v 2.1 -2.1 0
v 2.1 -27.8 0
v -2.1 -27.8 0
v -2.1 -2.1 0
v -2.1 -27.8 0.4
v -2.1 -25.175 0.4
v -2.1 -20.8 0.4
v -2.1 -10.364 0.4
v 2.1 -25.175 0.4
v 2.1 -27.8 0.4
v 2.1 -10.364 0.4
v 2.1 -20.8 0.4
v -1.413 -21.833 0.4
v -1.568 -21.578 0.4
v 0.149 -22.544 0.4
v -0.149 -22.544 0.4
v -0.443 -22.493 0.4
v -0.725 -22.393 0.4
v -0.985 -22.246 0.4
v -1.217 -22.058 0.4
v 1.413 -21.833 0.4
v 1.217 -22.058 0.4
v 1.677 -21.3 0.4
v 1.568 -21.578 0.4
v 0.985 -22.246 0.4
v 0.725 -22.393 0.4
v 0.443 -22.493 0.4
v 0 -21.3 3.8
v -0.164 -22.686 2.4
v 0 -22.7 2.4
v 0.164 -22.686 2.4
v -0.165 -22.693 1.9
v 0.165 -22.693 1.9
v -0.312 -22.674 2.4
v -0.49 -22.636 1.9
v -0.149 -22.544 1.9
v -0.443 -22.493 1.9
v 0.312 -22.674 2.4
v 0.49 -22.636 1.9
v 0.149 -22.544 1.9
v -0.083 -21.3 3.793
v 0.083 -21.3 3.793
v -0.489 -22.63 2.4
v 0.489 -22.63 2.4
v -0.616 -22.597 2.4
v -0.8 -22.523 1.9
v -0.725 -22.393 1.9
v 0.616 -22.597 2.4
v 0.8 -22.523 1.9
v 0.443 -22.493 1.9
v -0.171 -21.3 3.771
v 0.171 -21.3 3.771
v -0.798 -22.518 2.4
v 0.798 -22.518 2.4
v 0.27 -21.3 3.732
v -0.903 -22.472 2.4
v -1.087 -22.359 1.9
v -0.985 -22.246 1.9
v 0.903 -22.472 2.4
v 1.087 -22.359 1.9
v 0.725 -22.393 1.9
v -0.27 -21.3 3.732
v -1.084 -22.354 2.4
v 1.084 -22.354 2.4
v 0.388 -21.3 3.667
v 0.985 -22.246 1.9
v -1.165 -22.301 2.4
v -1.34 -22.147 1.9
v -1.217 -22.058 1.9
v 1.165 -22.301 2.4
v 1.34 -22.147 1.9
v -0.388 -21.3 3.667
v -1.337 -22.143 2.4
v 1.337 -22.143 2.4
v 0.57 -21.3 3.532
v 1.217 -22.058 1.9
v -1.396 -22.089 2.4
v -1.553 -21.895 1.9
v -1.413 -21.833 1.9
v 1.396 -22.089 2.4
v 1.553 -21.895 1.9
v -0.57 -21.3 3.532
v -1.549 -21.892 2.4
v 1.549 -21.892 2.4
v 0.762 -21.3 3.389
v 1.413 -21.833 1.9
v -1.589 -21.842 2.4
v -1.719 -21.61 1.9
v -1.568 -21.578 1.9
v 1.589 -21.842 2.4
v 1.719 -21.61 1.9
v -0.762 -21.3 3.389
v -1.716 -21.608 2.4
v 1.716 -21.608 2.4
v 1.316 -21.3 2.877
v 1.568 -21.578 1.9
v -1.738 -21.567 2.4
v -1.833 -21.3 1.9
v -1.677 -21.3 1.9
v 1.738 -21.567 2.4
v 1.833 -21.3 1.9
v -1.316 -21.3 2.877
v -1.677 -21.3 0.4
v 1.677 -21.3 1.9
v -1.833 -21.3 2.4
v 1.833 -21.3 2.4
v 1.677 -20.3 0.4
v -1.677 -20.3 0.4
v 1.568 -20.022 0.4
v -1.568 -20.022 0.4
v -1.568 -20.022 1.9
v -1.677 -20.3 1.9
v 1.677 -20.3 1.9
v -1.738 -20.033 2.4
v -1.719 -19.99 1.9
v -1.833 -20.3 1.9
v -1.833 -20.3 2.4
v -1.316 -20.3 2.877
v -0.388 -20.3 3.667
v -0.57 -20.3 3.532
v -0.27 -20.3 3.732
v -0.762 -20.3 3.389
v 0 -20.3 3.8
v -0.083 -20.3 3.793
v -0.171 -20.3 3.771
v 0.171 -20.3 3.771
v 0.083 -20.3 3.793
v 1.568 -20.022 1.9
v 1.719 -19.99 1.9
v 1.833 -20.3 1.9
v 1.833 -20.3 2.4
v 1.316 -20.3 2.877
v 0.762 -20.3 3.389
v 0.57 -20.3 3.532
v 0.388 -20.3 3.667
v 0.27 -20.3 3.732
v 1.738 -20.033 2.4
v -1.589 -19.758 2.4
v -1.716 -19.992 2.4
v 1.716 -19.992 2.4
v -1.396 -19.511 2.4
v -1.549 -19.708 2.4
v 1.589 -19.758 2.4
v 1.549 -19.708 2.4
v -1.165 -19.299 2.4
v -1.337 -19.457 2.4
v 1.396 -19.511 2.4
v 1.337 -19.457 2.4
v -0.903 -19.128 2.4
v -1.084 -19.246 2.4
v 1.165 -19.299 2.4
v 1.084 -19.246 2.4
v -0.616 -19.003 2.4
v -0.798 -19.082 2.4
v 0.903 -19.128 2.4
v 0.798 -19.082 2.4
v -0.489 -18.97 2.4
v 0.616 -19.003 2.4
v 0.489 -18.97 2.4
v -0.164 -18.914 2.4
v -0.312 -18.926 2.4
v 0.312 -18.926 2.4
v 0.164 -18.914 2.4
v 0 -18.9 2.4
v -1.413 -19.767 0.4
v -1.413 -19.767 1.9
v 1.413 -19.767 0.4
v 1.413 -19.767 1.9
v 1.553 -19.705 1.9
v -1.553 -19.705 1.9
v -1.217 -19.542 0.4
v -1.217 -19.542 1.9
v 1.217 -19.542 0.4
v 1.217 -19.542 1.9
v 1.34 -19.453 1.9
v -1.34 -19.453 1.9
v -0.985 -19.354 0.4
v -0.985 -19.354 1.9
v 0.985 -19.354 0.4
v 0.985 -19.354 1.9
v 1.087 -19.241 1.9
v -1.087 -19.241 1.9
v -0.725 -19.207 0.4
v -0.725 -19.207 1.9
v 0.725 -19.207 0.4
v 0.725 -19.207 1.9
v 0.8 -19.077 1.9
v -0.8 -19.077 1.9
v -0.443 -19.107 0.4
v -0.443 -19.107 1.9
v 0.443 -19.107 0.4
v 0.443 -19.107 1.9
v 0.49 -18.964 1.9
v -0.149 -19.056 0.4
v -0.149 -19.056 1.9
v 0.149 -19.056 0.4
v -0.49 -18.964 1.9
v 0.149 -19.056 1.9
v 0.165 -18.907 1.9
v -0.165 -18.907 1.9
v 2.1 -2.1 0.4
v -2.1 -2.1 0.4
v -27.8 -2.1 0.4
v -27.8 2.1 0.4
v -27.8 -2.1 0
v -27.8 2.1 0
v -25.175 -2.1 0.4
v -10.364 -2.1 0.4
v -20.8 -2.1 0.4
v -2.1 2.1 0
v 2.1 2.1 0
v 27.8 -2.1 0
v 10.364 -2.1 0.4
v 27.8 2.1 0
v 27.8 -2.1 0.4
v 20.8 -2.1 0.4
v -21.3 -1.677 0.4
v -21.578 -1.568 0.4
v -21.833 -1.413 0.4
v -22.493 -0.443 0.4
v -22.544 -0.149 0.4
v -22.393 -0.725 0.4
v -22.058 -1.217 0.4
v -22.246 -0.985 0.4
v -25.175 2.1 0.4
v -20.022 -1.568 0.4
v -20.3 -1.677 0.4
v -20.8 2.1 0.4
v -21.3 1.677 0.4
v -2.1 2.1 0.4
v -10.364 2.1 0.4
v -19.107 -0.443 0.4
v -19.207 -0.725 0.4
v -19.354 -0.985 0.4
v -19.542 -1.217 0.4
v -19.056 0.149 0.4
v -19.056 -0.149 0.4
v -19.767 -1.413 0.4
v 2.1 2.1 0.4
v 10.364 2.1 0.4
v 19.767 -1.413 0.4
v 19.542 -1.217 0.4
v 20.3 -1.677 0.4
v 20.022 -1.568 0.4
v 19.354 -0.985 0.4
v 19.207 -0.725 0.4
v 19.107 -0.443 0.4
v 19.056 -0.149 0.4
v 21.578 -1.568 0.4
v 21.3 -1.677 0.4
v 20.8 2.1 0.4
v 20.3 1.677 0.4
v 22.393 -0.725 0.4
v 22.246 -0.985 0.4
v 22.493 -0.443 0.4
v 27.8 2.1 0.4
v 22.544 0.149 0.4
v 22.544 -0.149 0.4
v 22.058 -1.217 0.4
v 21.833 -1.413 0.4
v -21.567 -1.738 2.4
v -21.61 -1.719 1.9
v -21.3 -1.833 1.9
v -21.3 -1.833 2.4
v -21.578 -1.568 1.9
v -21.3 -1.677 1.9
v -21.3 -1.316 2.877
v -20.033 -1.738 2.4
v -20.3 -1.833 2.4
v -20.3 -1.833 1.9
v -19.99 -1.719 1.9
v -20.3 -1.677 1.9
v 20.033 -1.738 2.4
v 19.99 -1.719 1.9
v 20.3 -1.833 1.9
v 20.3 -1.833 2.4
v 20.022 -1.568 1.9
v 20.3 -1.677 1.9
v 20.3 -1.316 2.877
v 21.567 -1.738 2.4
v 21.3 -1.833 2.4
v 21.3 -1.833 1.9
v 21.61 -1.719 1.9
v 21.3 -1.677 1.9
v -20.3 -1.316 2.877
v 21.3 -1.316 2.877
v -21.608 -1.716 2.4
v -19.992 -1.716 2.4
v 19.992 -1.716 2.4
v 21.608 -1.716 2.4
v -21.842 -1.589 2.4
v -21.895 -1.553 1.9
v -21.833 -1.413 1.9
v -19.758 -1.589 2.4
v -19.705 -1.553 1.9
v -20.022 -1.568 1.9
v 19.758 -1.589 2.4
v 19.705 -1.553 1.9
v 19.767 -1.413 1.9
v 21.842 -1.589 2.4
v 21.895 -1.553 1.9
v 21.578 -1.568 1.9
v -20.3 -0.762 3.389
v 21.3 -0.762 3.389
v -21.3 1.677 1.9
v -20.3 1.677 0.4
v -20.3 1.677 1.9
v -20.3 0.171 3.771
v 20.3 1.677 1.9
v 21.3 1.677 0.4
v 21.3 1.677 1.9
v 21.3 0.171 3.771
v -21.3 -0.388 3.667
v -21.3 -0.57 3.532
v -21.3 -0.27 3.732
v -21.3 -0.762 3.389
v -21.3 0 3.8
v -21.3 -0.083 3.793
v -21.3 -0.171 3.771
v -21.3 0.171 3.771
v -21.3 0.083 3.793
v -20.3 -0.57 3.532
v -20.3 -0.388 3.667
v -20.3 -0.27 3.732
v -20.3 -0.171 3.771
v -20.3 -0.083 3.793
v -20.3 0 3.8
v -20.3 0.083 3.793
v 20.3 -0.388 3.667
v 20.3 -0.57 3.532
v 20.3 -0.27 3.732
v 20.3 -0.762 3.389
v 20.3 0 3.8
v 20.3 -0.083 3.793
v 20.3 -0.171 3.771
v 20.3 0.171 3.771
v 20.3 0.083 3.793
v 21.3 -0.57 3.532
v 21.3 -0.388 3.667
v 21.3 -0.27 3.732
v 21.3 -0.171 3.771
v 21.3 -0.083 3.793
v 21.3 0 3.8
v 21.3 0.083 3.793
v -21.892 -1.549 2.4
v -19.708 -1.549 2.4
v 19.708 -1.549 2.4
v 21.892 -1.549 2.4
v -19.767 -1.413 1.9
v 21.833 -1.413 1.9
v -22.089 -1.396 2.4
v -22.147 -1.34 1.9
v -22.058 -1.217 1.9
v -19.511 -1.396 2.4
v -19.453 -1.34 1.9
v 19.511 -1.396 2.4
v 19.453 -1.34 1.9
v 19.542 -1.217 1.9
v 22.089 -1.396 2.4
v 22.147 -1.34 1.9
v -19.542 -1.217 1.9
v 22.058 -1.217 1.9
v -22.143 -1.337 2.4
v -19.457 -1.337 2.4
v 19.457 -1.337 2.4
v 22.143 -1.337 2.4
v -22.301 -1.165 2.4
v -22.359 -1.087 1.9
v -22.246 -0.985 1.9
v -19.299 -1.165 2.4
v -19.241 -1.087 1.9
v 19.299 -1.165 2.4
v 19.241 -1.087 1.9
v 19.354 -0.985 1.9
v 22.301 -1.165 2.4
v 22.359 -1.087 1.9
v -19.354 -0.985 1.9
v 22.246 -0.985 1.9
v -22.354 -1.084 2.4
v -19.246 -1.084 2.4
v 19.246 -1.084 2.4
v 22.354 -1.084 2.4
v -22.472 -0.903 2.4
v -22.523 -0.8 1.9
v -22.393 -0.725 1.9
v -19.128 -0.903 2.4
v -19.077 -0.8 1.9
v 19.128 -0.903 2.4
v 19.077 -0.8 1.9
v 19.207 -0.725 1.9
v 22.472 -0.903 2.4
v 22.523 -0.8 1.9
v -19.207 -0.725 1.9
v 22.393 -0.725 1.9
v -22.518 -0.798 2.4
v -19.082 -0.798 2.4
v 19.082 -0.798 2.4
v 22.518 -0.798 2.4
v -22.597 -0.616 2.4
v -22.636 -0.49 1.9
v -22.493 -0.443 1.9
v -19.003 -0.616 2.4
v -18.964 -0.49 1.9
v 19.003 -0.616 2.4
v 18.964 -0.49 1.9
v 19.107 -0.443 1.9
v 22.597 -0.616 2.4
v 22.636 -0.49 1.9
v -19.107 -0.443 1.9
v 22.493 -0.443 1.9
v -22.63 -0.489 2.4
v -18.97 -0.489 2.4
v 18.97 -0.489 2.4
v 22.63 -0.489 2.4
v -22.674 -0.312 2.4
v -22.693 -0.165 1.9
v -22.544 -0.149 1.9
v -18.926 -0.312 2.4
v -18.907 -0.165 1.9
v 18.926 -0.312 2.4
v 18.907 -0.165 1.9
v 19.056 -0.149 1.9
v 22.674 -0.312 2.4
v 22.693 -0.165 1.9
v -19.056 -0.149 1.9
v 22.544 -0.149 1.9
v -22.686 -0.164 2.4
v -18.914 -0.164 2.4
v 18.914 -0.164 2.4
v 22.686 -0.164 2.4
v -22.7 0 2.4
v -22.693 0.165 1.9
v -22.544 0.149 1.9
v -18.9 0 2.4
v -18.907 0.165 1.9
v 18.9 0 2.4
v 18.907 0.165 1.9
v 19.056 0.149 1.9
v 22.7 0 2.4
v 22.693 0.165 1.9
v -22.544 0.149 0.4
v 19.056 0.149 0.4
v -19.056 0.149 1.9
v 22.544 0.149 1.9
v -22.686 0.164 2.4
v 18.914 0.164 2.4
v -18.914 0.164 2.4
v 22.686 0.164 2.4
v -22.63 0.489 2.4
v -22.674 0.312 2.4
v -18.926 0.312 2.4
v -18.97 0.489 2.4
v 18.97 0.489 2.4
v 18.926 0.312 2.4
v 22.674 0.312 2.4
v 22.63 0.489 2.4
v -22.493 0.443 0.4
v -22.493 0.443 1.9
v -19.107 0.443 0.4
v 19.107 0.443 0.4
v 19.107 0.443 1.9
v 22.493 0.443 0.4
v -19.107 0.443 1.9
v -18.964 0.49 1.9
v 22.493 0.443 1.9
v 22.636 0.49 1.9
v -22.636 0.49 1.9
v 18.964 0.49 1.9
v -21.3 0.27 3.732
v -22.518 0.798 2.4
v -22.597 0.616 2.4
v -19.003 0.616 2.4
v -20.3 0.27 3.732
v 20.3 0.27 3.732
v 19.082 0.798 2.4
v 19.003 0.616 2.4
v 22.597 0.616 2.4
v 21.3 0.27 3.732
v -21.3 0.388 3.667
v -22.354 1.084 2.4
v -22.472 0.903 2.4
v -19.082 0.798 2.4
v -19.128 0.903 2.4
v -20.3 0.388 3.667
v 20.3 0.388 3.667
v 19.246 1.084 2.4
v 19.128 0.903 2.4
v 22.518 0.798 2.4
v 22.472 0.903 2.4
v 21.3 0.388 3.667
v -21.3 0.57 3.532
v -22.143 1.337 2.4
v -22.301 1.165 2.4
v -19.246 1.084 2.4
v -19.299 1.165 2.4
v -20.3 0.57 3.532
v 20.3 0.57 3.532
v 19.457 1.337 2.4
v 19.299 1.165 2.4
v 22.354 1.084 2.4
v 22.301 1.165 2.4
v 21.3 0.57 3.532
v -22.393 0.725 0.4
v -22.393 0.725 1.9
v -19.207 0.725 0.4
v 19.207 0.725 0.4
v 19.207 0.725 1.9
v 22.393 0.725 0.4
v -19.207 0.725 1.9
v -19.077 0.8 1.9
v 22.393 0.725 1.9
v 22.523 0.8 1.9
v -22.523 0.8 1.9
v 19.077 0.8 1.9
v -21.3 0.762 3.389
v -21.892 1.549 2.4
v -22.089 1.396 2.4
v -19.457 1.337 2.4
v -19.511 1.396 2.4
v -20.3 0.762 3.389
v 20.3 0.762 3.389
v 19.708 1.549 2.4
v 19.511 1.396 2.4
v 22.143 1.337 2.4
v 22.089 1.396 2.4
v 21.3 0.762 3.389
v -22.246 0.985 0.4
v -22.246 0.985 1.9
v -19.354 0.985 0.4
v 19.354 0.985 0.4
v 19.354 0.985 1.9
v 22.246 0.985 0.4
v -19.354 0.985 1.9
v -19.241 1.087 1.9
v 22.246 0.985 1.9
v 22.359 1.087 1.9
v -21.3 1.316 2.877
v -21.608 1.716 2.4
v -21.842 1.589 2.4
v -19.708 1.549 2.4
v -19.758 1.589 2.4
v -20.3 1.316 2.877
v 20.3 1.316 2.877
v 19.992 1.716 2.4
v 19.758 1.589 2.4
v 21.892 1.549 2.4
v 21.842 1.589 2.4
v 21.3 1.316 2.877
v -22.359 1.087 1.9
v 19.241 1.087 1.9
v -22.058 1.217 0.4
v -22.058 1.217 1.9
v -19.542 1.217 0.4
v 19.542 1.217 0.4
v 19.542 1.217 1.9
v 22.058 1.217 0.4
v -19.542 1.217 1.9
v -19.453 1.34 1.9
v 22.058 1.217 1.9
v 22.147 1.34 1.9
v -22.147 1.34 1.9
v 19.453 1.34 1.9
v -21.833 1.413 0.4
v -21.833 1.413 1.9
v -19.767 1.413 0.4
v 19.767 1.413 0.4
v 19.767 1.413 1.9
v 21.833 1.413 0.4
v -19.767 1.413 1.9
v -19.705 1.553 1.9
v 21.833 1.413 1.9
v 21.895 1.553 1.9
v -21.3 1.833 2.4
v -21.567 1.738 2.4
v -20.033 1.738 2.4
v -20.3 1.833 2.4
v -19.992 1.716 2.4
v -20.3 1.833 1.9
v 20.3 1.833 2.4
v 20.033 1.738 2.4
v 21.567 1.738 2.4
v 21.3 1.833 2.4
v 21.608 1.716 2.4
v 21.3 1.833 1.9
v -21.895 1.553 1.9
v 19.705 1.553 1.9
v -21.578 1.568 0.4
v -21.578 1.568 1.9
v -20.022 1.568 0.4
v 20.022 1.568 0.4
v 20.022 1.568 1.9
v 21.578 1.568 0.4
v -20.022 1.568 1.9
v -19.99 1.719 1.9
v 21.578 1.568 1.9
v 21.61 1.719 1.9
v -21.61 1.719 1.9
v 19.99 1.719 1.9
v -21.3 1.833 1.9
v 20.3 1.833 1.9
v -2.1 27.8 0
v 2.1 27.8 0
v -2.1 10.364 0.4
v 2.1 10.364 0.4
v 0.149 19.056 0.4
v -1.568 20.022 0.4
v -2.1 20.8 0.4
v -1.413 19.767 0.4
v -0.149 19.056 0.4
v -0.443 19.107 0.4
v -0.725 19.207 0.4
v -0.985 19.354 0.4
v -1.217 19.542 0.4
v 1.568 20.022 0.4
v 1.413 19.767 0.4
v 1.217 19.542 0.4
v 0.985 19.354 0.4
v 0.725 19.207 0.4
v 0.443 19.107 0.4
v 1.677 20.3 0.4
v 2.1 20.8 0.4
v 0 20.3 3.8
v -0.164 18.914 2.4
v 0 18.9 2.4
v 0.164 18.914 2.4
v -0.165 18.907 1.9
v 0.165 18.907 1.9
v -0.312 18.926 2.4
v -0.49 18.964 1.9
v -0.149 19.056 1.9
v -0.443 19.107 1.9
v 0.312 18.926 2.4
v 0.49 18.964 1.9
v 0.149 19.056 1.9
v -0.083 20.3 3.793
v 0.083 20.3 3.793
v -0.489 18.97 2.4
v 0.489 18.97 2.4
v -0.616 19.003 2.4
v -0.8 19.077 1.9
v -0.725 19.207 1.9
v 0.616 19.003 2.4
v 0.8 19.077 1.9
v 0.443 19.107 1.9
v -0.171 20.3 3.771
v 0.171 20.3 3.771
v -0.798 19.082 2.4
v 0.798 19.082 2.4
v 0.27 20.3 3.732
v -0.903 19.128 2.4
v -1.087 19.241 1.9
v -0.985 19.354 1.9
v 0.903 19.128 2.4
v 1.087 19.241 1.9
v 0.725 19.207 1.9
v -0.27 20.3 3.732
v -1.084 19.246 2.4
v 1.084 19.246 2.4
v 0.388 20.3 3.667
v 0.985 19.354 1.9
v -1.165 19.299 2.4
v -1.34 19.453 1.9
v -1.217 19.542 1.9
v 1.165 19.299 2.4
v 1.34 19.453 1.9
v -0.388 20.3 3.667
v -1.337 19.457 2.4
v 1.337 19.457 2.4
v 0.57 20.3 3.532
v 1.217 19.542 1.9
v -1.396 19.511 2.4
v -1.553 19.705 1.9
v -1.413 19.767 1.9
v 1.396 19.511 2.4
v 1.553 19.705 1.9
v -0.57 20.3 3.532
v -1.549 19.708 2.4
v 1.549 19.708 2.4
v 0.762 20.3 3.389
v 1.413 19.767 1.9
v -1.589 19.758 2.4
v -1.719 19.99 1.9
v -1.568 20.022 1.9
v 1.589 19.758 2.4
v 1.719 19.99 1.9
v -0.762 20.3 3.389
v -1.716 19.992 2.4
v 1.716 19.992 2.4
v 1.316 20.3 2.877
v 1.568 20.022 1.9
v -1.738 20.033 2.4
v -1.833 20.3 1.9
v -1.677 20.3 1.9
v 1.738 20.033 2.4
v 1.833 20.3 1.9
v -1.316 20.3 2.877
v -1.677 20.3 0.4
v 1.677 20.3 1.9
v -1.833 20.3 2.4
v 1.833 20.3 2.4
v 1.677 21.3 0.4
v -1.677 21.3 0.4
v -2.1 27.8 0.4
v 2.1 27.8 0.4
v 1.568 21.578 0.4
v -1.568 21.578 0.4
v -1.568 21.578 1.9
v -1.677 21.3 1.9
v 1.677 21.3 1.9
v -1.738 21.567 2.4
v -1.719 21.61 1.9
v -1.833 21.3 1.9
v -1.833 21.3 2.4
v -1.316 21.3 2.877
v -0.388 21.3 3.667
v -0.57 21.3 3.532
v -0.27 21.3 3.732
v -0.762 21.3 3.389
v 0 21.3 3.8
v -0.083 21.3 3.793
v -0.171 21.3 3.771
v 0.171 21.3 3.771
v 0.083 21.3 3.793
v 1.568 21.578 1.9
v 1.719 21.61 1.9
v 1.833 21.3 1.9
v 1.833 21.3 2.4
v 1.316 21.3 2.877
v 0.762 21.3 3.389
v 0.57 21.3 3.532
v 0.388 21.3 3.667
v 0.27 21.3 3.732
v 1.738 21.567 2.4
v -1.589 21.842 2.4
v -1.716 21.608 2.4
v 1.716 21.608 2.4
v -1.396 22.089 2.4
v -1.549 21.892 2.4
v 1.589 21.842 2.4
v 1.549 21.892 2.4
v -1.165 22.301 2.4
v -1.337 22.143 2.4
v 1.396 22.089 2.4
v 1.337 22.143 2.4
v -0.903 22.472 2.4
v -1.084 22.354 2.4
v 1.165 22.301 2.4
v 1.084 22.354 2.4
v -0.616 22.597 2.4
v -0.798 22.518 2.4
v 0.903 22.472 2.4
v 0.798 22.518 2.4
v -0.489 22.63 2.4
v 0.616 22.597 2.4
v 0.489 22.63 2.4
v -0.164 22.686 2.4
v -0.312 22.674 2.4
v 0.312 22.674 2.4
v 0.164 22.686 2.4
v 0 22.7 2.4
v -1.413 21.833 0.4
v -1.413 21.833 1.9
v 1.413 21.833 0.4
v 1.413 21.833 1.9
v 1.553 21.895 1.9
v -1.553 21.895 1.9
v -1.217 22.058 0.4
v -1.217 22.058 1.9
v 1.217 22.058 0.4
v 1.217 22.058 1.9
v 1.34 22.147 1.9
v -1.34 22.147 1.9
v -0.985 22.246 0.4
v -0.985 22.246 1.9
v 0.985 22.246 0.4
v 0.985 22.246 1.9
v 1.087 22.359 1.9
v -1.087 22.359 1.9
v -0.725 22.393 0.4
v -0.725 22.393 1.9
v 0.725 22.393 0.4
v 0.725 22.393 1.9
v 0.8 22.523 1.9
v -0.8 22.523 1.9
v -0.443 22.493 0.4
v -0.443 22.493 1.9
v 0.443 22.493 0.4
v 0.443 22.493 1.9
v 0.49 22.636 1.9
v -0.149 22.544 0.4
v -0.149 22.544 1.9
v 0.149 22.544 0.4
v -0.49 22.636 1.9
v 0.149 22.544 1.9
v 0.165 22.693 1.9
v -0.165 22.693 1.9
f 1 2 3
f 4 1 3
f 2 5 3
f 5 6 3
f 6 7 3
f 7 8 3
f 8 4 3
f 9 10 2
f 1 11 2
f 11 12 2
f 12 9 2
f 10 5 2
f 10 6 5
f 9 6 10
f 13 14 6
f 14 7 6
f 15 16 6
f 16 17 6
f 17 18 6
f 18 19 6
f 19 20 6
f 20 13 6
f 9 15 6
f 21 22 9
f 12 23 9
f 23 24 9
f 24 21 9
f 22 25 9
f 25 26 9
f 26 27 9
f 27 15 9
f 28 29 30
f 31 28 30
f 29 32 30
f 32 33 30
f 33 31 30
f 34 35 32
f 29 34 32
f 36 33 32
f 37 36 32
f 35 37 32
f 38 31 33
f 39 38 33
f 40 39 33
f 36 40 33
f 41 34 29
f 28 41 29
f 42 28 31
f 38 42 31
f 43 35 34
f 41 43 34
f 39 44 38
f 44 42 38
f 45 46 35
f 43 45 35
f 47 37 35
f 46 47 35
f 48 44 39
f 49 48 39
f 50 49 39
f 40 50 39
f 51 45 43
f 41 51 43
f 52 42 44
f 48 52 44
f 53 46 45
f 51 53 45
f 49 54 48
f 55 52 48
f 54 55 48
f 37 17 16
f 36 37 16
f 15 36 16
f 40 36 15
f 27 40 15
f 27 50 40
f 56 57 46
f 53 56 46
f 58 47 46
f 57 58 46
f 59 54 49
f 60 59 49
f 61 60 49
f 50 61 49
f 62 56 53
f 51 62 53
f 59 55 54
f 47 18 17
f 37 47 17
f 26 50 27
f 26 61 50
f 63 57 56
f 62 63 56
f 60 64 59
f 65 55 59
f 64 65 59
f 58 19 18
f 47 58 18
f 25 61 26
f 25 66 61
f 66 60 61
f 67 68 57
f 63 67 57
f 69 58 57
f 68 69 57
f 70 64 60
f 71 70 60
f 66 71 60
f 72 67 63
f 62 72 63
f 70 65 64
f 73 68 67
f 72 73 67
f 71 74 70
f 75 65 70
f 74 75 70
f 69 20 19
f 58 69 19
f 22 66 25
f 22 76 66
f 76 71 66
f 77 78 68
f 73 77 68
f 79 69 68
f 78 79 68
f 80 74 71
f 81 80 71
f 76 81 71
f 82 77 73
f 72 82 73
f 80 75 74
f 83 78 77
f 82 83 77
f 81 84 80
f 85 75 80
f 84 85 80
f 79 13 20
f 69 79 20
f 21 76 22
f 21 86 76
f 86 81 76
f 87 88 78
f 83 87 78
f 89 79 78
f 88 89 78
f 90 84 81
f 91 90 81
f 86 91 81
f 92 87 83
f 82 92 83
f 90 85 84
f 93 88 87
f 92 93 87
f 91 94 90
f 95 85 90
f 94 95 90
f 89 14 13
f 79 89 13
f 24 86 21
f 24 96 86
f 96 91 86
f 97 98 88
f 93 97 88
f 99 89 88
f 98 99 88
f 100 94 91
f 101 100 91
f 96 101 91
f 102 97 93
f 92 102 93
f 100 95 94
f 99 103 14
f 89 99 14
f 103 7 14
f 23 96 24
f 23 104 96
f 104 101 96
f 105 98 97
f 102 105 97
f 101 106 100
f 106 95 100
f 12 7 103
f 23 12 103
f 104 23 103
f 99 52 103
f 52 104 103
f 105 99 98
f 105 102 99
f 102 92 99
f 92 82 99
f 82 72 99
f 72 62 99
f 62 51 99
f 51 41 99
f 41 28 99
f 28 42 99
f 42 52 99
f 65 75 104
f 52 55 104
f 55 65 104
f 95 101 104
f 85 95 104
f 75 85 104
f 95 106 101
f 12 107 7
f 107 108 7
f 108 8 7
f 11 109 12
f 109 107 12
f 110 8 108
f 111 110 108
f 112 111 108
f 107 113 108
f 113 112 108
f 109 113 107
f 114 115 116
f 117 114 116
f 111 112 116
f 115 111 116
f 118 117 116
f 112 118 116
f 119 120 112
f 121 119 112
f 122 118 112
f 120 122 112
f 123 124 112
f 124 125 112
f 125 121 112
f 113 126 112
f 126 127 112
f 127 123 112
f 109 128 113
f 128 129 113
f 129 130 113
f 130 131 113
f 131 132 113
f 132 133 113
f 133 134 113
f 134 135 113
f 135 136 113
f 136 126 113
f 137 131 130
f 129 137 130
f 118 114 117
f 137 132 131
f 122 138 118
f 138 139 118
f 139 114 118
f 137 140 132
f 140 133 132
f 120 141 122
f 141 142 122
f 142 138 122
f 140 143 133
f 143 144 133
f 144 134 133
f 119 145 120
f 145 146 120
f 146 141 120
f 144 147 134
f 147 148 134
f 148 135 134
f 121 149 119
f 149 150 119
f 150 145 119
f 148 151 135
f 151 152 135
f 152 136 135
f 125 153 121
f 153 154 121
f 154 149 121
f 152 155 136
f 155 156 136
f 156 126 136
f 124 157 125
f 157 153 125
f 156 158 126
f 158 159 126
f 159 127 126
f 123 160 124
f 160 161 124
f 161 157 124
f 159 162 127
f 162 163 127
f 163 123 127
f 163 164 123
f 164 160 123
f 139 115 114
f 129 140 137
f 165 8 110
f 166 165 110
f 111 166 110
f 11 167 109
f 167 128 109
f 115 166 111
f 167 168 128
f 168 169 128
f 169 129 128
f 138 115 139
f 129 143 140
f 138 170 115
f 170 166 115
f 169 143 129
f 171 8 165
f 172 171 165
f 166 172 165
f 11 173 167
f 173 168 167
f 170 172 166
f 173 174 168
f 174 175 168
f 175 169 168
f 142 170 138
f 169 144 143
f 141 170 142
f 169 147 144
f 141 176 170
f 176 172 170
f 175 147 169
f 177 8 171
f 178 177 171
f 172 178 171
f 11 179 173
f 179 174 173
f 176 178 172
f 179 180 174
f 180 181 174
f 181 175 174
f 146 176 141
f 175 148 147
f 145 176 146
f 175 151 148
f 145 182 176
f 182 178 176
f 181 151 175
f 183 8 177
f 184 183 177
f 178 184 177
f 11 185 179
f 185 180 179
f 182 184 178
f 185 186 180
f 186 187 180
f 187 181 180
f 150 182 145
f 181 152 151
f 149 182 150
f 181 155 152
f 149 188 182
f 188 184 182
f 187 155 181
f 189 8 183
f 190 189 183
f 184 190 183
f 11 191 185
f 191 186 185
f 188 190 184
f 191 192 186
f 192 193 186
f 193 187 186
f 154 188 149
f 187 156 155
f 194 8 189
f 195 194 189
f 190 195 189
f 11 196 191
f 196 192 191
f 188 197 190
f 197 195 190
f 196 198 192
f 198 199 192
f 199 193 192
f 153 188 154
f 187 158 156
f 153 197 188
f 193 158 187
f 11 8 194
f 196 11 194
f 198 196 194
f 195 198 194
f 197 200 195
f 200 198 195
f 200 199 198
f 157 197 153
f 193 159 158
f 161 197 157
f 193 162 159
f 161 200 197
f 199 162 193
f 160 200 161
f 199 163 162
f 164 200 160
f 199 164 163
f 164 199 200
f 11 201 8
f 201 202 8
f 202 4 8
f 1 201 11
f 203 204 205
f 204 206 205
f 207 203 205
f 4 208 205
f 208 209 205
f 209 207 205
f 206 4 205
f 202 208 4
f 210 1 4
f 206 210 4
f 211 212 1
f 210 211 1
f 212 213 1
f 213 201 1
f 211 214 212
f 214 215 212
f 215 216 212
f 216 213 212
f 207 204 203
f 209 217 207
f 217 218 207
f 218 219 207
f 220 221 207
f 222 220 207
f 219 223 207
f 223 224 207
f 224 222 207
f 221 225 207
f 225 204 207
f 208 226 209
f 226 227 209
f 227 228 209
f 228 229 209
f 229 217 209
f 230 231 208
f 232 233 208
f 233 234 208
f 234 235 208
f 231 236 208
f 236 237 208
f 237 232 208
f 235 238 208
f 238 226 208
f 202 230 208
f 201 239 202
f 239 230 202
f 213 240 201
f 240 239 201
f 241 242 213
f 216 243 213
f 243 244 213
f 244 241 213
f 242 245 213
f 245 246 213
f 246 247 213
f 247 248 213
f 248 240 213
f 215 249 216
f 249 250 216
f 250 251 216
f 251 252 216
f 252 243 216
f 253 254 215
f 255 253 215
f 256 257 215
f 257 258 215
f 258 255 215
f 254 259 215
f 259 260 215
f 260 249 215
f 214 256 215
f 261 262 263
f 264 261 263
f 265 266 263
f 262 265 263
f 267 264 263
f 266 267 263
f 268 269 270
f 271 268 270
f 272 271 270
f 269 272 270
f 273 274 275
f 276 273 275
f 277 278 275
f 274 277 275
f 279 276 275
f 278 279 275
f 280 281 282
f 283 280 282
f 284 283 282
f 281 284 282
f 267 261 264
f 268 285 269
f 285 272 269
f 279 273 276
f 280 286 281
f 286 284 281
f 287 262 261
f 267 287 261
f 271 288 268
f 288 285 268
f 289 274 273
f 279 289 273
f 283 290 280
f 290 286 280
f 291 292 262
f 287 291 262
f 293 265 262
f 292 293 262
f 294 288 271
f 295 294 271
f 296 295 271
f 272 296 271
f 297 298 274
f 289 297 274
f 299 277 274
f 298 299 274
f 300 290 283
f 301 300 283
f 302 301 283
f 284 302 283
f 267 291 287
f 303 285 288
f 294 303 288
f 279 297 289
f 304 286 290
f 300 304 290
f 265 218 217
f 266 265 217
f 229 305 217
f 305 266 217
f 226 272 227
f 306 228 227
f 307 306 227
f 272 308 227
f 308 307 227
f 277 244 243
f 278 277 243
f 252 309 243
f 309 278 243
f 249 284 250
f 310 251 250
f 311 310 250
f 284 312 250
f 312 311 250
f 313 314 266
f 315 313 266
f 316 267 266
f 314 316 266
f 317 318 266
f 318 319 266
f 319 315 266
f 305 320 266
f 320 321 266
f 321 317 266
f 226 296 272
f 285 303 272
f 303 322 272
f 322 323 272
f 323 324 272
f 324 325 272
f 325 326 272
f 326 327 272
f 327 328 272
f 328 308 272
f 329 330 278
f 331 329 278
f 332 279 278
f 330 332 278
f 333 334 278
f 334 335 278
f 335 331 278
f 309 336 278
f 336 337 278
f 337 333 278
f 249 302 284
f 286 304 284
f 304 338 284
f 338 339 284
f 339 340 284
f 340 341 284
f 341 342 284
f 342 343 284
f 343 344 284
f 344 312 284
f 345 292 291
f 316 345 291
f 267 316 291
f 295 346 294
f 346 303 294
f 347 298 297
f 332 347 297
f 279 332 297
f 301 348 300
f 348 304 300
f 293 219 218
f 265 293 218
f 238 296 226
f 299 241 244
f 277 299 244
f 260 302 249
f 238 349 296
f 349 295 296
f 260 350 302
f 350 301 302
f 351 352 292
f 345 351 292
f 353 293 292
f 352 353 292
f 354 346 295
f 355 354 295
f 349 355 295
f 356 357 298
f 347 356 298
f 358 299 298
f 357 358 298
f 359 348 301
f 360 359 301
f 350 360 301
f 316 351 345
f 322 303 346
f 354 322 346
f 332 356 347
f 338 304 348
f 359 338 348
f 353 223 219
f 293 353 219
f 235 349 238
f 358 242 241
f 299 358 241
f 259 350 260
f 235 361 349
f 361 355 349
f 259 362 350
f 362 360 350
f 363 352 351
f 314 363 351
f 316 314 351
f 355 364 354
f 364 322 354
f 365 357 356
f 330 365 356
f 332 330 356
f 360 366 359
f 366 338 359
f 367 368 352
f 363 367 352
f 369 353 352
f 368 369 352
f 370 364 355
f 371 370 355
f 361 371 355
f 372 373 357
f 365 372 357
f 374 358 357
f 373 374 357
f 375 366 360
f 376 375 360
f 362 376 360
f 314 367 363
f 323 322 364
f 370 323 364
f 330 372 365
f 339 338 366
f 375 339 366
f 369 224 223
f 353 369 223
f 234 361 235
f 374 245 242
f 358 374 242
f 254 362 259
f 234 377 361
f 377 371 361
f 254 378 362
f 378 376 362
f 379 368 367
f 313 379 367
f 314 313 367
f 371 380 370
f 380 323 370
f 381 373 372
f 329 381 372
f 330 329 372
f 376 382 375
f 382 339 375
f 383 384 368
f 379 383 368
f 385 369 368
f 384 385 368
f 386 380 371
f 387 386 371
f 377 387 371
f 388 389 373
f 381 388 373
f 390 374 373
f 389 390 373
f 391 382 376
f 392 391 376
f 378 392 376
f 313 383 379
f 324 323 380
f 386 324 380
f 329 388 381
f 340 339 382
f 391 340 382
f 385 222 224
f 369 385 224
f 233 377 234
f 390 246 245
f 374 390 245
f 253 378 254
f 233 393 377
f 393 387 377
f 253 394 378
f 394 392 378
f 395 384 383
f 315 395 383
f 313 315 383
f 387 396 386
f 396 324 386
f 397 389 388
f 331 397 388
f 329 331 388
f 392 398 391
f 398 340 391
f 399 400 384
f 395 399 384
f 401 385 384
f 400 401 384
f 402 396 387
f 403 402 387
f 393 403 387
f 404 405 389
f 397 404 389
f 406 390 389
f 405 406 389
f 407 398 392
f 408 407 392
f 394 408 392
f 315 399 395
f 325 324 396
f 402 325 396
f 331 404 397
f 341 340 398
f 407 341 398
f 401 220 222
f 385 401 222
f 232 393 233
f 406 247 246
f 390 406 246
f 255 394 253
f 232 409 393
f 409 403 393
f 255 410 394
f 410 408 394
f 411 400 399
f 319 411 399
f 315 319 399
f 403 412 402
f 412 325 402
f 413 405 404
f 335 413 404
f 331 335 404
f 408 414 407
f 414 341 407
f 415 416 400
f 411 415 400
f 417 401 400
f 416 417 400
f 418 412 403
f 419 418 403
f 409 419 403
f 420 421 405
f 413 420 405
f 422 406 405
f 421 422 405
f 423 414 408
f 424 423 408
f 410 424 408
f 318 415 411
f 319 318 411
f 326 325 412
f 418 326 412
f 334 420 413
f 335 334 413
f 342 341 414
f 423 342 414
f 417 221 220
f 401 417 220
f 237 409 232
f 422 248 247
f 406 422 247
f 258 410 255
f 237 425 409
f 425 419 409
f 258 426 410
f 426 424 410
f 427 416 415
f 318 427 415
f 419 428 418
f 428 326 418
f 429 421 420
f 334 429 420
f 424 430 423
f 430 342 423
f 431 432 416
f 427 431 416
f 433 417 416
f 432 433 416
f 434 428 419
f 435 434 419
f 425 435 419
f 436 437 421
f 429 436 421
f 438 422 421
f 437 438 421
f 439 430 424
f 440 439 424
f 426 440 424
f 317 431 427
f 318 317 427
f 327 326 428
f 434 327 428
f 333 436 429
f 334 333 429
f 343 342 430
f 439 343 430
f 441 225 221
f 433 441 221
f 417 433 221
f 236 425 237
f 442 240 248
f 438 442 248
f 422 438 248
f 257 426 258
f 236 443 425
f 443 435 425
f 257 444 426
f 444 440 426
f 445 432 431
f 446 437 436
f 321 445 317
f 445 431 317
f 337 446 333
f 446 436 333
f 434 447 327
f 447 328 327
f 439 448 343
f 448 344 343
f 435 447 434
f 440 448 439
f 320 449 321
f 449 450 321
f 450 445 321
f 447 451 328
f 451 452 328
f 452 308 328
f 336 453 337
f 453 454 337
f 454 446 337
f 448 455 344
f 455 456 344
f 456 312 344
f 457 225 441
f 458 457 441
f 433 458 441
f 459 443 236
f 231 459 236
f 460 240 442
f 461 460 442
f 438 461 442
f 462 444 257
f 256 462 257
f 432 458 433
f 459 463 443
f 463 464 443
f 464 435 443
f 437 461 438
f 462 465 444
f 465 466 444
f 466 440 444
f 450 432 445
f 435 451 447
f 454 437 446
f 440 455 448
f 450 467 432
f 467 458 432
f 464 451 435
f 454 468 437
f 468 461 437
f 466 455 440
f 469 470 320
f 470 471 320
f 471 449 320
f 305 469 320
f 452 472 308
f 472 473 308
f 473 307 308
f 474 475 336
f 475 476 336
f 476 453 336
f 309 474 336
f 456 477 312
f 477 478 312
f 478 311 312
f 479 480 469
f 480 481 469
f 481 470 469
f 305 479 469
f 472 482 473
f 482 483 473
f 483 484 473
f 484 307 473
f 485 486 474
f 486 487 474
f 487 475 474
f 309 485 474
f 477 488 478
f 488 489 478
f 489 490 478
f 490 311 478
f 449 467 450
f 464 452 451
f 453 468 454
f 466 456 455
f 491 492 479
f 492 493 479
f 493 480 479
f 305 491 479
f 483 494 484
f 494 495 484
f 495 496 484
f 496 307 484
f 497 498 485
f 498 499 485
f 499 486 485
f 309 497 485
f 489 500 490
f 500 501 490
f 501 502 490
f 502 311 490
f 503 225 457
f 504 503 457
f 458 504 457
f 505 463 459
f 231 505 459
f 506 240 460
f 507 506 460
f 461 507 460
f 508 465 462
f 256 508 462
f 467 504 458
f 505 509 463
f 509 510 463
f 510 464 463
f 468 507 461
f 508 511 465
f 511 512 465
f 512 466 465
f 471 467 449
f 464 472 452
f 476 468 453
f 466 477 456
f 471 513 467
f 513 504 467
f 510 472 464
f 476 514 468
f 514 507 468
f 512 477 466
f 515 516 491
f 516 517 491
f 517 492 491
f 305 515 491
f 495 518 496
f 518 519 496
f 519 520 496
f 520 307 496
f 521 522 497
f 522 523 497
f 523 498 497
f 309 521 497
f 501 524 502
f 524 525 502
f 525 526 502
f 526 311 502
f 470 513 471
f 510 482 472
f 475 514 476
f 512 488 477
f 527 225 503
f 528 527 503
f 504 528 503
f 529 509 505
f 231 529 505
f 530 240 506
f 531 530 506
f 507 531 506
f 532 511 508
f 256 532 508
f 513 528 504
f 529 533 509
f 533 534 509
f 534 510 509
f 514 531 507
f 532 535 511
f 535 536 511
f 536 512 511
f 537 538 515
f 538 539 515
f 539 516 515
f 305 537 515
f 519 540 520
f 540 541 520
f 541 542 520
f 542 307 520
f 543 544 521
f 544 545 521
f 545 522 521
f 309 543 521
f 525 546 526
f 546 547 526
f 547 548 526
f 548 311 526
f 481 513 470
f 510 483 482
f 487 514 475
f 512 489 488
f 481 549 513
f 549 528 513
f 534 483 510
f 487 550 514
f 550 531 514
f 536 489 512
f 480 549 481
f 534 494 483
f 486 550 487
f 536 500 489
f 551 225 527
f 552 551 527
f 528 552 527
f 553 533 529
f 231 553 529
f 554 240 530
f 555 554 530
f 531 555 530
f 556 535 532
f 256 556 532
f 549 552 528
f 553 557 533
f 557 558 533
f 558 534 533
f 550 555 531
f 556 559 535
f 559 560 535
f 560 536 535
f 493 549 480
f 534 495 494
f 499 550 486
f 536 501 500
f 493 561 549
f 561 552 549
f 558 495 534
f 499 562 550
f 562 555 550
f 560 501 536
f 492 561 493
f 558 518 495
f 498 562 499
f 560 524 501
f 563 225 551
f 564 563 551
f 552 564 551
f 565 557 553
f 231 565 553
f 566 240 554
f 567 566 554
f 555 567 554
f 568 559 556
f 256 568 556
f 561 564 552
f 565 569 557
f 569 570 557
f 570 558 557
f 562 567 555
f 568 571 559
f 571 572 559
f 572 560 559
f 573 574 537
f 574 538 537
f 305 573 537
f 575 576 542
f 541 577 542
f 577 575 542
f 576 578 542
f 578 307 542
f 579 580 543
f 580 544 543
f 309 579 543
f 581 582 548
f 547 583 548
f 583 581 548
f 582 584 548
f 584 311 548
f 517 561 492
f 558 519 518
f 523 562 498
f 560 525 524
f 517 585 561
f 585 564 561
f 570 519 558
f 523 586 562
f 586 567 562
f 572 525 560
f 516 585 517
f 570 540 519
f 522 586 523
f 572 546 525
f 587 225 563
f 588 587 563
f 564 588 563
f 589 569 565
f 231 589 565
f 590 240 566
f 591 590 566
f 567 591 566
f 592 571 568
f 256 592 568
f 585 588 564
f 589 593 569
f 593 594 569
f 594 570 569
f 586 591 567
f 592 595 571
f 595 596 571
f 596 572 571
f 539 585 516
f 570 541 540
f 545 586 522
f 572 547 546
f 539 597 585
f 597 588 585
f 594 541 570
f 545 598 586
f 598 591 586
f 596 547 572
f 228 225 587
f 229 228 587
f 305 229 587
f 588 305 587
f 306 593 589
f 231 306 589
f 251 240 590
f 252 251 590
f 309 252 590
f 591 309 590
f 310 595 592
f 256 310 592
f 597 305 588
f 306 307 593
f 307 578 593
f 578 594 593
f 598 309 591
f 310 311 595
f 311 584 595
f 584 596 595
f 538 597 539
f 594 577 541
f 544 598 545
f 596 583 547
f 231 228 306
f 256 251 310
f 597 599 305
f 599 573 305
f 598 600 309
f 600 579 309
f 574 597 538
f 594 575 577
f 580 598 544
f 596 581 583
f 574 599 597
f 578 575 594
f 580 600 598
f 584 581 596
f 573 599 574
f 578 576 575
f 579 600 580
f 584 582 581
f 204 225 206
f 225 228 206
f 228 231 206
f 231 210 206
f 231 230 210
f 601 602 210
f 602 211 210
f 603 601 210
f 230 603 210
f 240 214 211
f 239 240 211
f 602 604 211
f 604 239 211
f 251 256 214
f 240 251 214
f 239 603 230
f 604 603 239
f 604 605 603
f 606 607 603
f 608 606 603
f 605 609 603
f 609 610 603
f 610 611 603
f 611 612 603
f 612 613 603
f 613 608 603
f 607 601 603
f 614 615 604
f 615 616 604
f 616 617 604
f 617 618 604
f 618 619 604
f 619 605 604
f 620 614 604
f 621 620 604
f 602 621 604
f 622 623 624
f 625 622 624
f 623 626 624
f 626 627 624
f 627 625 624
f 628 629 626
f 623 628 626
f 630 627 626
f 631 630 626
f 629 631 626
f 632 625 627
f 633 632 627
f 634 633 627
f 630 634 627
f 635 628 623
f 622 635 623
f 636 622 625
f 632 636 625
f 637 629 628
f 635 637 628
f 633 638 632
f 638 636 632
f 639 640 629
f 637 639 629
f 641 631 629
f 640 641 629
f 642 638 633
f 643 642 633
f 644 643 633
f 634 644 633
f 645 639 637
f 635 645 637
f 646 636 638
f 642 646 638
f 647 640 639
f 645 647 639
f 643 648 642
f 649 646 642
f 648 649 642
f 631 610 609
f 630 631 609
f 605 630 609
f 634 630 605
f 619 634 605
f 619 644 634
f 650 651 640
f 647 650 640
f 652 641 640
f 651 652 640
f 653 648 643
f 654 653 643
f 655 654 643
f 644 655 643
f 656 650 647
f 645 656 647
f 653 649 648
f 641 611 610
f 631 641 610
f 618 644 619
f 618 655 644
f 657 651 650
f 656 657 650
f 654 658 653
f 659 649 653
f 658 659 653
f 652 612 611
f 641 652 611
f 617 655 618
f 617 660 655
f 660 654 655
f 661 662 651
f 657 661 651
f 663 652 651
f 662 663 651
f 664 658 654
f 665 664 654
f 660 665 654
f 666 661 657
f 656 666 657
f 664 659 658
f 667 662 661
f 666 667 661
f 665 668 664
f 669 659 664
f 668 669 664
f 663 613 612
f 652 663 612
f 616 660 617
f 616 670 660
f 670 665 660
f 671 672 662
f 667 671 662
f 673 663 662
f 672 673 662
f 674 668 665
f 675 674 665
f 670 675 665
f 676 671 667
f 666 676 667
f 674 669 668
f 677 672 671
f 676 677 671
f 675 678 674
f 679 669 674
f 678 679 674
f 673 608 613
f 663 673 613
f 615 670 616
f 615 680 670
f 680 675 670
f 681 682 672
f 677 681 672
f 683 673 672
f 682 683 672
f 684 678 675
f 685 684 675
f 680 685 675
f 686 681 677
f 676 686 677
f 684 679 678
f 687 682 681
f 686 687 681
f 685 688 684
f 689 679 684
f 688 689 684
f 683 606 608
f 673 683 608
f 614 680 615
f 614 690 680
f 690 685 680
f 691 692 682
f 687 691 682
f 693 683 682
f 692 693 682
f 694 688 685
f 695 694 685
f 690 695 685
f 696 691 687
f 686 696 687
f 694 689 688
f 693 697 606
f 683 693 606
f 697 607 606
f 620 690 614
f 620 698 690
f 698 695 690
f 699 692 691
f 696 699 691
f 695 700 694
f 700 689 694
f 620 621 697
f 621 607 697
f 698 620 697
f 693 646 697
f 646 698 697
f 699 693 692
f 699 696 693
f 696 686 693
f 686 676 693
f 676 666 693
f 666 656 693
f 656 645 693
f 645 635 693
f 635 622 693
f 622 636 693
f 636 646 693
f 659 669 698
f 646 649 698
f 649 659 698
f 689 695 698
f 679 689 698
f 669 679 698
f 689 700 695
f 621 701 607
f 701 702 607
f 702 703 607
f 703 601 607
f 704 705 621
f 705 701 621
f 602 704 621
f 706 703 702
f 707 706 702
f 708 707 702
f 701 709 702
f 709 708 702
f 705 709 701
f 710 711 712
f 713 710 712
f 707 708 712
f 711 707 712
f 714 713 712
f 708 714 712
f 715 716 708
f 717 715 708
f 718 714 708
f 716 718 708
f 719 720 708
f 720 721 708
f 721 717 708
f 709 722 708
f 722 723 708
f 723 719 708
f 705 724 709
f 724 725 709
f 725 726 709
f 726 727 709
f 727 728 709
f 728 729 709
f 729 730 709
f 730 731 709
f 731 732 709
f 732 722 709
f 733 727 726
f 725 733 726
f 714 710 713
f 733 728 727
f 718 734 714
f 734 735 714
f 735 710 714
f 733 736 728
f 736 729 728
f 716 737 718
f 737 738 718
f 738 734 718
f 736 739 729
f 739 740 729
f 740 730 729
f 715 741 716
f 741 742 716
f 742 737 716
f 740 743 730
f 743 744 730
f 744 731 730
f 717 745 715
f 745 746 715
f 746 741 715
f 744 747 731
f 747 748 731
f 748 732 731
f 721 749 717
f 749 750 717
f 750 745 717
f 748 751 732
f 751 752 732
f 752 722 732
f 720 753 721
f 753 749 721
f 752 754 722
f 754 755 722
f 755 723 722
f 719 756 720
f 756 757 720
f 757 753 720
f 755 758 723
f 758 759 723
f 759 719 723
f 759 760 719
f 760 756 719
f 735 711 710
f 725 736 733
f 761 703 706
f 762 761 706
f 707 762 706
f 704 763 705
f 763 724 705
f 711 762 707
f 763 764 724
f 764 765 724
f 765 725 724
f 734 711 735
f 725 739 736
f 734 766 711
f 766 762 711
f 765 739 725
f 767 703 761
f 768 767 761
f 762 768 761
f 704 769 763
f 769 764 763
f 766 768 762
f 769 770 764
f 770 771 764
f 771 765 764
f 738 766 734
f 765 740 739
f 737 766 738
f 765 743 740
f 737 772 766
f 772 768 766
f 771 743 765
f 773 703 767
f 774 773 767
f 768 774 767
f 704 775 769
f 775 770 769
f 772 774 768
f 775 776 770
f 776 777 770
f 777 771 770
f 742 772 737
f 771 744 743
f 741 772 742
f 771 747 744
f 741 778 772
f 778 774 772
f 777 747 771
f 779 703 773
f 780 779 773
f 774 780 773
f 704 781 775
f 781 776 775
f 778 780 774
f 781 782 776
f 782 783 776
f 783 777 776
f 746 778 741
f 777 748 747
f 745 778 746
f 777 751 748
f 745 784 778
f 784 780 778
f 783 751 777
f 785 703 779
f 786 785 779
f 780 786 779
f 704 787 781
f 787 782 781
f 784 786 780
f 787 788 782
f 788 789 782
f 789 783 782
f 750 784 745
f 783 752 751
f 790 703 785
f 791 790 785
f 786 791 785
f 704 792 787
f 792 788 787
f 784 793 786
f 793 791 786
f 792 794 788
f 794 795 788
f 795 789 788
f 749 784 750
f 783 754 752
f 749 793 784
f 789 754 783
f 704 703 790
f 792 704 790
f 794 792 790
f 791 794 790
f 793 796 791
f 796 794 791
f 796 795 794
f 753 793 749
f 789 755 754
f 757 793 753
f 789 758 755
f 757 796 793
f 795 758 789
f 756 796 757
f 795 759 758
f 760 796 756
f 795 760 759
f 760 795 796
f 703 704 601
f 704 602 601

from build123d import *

# Parameters (mm, degrees)
SKICA2_W                 = 4.2
SKICA2_H                 = 55.6
SKICA2_W_2               = 55.6
SKICA2_H_2               = 4.2
P_IDAT_VYSUNUT_M2_DEPTH  = 0.4
SKICA3_R                 = 1.75
P_IDAT_VYSUNUT_M3_DEPTH  = 1.5
SKICA5_R                 = 1.9
P_IDAT_VYSUNUT_M5_DEPTH  = 2
ZKOSEN_2_SIZE            = 1.5
SKICA7_W                 = 1
SKICA7_H                 = 5
SKICA7_W_2               = 5
SKICA7_H_2               = 1
ODEBRAT_VYSUNUT_M1_DEPTH = 3.5


with BuildPart() as part:
    # Skica2 → Přidat vysunutím2 (new body)
    with BuildSketch(Plane.XY):
        Rectangle(SKICA2_W, SKICA2_H)
        Rectangle(SKICA2_W_2, SKICA2_H_2)
    extrude(amount=P_IDAT_VYSUNUT_M2_DEPTH)

    # Skica3 → Přidat vysunutím3 (add)
    with BuildSketch(Plane.XY.offset(0.4)):
        with Locations((-20.8, 0)):
            Circle(SKICA3_R)
        with Locations((0, 20.8)):
            Circle(SKICA3_R)
        with Locations((20.8, 0)):
            Circle(SKICA3_R)
        with Locations((0, -20.8)):
            Circle(SKICA3_R)
    extrude(amount=P_IDAT_VYSUNUT_M3_DEPTH)

    # Skica5 → Přidat vysunutím5 (add)
    with BuildSketch(Plane.XY.offset(1.9)):
        with Locations((-20.8, 0)):
            Circle(SKICA5_R)
        with Locations((20.8, 0)):
            Circle(SKICA5_R)
        with Locations((0, 20.8)):
            Circle(SKICA5_R)
        with Locations((0, -20.8)):
            Circle(SKICA5_R)
    extrude(amount=P_IDAT_VYSUNUT_M5_DEPTH)

    # Zkosení2
    zkosen_2_edges = [part.edges().sort_by_distance(p)[0] for p in [
        (-1.9, 20.8, 3.9),
        (-22.7, 0, 3.9),
        (18.9, 0, 3.9),
        (-1.9, -20.8, 3.9),
    ]]
    chamfer(zkosen_2_edges, length=ZKOSEN_2_SIZE)

    # Skica7 → Odebrat vysunutím1 (cut)
    with BuildSketch(Plane.XY.offset(3.9)):
        with Locations((-20.8, 0)):
            Rectangle(SKICA7_W, SKICA7_H)
        with Locations((20.8, 0)):
            Rectangle(SKICA7_W, SKICA7_H)
        with Locations((0, -20.8)):
            Rectangle(SKICA7_W_2, SKICA7_H_2)
        with Locations((0, 20.8)):
            Rectangle(SKICA7_W_2, SKICA7_H_2)
    extrude(amount=-ODEBRAT_VYSUNUT_M1_DEPTH, mode=Mode.SUBTRACT)


solid = part.part
